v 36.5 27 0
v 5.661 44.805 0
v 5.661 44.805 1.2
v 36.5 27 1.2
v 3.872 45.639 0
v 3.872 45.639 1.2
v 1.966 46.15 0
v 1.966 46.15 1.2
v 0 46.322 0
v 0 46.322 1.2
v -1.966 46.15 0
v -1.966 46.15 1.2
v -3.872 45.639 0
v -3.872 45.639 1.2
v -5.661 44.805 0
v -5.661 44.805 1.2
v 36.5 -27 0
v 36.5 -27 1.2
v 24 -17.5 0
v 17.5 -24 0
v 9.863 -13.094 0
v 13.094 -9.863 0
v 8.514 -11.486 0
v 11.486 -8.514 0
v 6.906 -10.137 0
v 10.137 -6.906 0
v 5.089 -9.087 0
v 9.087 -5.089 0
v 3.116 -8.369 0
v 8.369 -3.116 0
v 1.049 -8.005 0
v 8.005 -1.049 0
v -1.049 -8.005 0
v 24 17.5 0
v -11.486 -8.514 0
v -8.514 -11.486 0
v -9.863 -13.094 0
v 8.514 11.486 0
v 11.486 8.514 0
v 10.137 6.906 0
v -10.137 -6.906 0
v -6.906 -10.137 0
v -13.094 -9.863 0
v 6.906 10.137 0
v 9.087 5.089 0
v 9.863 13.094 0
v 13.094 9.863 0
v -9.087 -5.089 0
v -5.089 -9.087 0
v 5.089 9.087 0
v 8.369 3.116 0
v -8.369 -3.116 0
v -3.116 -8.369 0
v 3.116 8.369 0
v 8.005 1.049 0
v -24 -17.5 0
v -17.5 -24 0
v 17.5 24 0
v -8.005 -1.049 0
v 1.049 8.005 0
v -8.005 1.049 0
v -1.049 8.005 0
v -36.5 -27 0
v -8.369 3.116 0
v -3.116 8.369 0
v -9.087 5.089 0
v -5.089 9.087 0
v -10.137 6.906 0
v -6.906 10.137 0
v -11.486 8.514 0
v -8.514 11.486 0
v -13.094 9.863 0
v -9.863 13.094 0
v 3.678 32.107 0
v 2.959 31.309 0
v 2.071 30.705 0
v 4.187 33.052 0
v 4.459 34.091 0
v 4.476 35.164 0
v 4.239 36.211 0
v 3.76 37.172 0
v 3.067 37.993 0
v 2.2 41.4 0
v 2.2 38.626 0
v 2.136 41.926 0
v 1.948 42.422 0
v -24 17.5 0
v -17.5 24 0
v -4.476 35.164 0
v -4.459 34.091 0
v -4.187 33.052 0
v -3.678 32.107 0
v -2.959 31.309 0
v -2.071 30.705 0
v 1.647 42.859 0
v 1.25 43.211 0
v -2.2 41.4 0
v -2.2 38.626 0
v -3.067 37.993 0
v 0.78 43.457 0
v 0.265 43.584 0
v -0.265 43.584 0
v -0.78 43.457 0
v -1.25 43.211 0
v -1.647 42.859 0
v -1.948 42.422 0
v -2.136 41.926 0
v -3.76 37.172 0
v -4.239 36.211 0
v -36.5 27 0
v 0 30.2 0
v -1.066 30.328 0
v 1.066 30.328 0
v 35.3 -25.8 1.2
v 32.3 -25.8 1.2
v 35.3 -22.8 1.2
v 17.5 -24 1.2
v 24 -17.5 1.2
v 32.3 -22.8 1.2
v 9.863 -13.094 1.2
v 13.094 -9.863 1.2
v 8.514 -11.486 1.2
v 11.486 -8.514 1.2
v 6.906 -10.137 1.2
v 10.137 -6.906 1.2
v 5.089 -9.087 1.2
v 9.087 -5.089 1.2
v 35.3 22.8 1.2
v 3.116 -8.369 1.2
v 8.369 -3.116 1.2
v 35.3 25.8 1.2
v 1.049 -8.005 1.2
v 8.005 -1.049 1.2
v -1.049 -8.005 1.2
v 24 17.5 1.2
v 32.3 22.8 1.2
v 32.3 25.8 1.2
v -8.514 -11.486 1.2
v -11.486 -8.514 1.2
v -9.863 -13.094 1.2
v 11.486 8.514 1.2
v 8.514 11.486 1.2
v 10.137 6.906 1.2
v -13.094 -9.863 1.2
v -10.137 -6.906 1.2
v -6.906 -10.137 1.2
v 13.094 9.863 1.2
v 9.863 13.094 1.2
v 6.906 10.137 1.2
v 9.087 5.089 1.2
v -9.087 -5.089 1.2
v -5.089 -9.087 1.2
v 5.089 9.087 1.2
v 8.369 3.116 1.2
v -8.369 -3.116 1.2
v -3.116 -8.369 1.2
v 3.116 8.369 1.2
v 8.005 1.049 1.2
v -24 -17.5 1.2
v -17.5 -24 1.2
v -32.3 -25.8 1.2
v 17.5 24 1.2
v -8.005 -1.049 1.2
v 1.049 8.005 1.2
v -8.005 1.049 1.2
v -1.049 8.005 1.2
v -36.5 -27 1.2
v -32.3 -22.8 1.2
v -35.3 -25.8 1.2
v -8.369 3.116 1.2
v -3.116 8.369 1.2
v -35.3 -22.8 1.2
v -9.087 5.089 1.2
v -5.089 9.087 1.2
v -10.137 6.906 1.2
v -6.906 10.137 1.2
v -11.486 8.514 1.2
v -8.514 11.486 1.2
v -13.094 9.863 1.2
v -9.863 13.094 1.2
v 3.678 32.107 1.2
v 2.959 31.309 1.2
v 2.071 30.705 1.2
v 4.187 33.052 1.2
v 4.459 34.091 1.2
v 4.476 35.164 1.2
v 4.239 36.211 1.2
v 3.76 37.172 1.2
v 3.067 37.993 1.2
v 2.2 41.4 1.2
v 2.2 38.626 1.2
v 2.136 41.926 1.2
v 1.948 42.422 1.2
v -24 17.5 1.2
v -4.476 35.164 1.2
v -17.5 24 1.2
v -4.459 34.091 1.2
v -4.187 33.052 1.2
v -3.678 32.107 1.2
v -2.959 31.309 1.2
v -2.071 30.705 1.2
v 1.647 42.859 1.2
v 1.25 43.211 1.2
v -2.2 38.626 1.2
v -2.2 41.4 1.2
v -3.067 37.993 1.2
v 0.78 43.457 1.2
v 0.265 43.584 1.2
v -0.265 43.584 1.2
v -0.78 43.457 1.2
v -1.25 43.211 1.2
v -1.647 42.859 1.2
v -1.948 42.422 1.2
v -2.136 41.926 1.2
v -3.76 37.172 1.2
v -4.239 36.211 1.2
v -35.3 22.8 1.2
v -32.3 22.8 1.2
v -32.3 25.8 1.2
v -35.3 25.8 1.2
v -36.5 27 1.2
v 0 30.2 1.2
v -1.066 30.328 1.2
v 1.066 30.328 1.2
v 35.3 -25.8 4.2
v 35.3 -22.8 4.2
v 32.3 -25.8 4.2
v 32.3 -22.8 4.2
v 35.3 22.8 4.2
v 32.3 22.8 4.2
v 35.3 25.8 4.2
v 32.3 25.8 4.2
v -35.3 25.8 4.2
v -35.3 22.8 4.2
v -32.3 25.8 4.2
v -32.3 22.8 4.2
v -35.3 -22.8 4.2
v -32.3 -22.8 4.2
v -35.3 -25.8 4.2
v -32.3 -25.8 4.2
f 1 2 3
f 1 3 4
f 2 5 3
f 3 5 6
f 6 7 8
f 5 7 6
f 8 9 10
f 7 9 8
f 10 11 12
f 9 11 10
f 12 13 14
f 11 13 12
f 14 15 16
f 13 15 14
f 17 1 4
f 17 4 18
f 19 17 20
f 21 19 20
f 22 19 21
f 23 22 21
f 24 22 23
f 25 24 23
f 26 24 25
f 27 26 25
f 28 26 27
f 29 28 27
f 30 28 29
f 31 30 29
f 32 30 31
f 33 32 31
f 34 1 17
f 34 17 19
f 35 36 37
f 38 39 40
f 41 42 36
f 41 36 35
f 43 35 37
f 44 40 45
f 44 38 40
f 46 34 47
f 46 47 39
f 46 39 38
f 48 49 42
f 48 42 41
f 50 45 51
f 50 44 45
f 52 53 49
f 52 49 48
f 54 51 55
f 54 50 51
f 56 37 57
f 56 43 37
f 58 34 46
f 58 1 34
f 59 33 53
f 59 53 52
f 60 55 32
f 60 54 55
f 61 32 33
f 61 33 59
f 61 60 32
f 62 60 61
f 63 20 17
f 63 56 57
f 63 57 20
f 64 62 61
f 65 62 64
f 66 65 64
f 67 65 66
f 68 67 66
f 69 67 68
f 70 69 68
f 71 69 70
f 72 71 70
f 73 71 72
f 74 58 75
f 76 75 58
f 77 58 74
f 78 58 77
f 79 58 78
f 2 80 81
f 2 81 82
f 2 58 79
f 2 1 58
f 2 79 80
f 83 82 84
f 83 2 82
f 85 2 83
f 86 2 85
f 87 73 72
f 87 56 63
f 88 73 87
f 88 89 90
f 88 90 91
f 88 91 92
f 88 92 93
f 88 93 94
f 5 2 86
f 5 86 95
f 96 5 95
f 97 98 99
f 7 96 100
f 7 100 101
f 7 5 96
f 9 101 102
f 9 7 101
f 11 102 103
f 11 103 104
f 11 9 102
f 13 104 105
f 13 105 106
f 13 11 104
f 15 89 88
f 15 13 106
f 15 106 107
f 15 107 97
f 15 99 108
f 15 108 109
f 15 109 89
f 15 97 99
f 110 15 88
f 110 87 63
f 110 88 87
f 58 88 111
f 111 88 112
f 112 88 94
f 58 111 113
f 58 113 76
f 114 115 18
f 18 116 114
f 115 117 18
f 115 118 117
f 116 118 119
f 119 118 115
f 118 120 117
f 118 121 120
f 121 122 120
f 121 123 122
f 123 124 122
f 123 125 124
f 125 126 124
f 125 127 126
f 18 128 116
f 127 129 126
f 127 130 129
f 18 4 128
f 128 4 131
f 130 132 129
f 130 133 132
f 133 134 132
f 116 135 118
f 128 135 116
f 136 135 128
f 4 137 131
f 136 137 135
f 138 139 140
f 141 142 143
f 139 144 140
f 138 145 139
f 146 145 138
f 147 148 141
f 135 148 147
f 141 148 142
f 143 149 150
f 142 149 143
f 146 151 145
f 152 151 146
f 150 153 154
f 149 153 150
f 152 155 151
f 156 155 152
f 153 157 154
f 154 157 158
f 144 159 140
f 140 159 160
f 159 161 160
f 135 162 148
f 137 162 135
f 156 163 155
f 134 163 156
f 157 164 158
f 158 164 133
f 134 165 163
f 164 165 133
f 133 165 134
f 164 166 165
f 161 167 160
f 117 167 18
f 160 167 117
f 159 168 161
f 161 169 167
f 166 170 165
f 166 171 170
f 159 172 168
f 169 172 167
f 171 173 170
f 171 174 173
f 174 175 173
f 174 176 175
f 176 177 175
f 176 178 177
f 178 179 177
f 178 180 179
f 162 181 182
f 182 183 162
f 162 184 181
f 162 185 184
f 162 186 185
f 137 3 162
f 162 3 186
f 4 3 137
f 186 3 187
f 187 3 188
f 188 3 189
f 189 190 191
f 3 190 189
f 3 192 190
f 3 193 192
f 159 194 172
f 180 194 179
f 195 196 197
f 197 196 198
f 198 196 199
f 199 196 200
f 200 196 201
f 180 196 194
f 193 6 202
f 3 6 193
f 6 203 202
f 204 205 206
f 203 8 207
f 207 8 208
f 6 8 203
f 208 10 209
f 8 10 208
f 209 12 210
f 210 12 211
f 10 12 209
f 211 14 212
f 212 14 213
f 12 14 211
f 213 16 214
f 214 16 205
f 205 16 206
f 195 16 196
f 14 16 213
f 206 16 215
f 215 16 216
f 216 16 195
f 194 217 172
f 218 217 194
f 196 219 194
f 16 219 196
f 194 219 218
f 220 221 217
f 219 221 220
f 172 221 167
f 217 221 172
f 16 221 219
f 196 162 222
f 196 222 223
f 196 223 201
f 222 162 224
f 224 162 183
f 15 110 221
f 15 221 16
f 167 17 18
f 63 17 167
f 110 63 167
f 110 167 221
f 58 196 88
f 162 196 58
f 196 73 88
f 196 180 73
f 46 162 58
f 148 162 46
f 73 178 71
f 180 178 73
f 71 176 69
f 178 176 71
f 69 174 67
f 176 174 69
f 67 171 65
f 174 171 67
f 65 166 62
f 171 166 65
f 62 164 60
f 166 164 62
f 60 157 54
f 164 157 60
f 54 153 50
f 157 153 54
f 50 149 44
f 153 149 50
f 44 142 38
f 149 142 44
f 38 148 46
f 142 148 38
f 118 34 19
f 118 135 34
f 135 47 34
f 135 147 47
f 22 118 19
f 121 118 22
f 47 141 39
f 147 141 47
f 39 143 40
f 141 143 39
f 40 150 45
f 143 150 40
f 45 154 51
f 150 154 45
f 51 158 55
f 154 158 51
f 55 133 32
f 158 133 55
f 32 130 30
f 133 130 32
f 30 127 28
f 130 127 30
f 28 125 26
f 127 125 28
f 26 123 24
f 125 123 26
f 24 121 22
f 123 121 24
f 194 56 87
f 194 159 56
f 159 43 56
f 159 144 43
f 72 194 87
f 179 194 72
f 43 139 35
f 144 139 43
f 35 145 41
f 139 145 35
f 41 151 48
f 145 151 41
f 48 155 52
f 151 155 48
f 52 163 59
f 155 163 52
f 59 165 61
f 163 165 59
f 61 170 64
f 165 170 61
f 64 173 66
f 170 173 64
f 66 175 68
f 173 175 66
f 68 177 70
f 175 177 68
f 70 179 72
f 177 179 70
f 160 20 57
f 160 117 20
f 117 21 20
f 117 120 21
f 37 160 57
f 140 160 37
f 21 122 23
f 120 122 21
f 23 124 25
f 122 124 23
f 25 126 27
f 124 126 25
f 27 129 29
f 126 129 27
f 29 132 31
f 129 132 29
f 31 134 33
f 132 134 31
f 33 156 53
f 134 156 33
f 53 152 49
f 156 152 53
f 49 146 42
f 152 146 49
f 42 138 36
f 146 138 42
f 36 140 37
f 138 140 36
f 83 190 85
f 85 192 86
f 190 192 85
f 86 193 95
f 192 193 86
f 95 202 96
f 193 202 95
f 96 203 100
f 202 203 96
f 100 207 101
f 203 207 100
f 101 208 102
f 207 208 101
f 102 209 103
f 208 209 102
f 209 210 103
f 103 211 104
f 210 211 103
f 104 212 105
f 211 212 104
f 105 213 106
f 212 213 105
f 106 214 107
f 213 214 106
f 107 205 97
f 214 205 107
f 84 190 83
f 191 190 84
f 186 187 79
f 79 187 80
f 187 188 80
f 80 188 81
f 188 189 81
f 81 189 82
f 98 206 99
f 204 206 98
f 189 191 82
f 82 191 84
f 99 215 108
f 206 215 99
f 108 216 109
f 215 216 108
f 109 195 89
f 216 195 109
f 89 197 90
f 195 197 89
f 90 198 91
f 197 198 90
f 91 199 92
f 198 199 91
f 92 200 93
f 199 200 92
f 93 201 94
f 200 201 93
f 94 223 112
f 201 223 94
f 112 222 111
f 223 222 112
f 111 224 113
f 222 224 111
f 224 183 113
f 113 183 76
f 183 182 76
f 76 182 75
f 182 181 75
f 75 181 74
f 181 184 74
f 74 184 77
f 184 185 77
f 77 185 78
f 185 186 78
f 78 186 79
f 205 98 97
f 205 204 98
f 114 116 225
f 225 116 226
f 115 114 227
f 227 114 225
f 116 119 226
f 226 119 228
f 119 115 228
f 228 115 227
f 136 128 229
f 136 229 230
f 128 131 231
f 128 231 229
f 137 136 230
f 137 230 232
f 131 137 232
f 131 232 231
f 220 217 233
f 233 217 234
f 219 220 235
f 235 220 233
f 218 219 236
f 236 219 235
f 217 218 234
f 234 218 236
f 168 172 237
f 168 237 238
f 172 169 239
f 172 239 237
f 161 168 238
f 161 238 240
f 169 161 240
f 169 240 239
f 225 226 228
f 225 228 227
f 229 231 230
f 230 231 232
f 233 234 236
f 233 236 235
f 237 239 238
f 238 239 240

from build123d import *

# Parameters (mm, degrees)
PAD_DEPTH             = 1.2
POCKET_DEPTH          = 208.145687
POLARPATTERN_COUNT    = 4
POCKET001_DEPTH       = 1.201
SKETCH003_W           = 3
SKETCH003_H           = 3
PAD001_DEPTH          = 3
POLARPATTERN001_COUNT = 2


with BuildPart() as part:
    # Sketch → Pad (new body)
    with BuildSketch(Plane.XY):
        with BuildLine():
            Line((36.5, 27), (36.5, -27))
            Line((36.5, -27), (-36.5, -27))
            Line((-36.5, -27), (-36.5, 27))
            Line((-36.5, 27), (-5.660898, 44.804964))
            ThreePointArc((5.660898, 44.804964), (0, 46.321797), (-5.660898, 44.804964))
            Line((5.660898, 44.804964), (36.5, 27))
        make_face()
    extrude(amount=PAD_DEPTH)

    # Sketch001 (on Face8 of Pad) → Pocket (cut, through all)
    with BuildSketch(Plane.XY.offset(1.2)):
        with BuildLine():
            Line((-24, 17.5), (-24, -17.5))
            Line((-13.093649, -9.863291), (-24, -17.5))
            ThreePointArc((-13.093649, -9.863291), (-7.959145, 0), (-13.093649, 9.863291))
            Line((-13.093649, 9.863291), (-24, 17.5))
        make_face()
    pocket = extrude(amount=-POCKET_DEPTH, mode=Mode.SUBTRACT)

    # PolarPattern: Pocket ×4 about axis
    polarpattern_axis = Axis((0, 0, 1.2), (0, 0, 1))
    for i in range(1, POLARPATTERN_COUNT):
        add(pocket.rotate(polarpattern_axis, i * 360 / POLARPATTERN_COUNT), mode=Mode.SUBTRACT)

    # Sketch002 (on Face5 of PolarPattern) → Pocket001 (cut, through all)
    with BuildSketch(Plane.XY.offset(1.2)):
        with BuildLine():
            Line((-2.2, 38.625557), (-2.2, 41.399983))
            ThreePointArc((2.2, 41.399982), (1e-06, 43.6), (-2.2, 41.399983))
            Line((2.2, 38.625557), (2.2, 41.399982))
            ThreePointArc((-2.2, 38.625557), (0, 30.2), (2.2, 38.625557))
        make_face()
    extrude(amount=-POCKET001_DEPTH, mode=Mode.SUBTRACT)

    # Sketch003 (on Face5 of Pocket001) → Pad001 (join)
    with BuildSketch(Plane.XY.offset(1.2)):
        with Locations((-33.8, -24.3)):
            Rectangle(SKETCH003_W, SKETCH003_H)
    pad001 = extrude(amount=PAD001_DEPTH)

    # PolarPattern001: Pad001 ×2 about axis
    polarpattern001_axis = Axis((0, 0, 1.2), (0, 0, 1))
    for i in range(1, POLARPATTERN001_COUNT):
        add(pad001.rotate(polarpattern001_axis, i * 360 / POLARPATTERN001_COUNT))

    # Mirrored: Pad001 across YZ
    add(pad001.mirror(Plane.YZ))

    # Mirrored001: Pad001 across XZ
    add(pad001.mirror(Plane.XZ))


solid = part.part
